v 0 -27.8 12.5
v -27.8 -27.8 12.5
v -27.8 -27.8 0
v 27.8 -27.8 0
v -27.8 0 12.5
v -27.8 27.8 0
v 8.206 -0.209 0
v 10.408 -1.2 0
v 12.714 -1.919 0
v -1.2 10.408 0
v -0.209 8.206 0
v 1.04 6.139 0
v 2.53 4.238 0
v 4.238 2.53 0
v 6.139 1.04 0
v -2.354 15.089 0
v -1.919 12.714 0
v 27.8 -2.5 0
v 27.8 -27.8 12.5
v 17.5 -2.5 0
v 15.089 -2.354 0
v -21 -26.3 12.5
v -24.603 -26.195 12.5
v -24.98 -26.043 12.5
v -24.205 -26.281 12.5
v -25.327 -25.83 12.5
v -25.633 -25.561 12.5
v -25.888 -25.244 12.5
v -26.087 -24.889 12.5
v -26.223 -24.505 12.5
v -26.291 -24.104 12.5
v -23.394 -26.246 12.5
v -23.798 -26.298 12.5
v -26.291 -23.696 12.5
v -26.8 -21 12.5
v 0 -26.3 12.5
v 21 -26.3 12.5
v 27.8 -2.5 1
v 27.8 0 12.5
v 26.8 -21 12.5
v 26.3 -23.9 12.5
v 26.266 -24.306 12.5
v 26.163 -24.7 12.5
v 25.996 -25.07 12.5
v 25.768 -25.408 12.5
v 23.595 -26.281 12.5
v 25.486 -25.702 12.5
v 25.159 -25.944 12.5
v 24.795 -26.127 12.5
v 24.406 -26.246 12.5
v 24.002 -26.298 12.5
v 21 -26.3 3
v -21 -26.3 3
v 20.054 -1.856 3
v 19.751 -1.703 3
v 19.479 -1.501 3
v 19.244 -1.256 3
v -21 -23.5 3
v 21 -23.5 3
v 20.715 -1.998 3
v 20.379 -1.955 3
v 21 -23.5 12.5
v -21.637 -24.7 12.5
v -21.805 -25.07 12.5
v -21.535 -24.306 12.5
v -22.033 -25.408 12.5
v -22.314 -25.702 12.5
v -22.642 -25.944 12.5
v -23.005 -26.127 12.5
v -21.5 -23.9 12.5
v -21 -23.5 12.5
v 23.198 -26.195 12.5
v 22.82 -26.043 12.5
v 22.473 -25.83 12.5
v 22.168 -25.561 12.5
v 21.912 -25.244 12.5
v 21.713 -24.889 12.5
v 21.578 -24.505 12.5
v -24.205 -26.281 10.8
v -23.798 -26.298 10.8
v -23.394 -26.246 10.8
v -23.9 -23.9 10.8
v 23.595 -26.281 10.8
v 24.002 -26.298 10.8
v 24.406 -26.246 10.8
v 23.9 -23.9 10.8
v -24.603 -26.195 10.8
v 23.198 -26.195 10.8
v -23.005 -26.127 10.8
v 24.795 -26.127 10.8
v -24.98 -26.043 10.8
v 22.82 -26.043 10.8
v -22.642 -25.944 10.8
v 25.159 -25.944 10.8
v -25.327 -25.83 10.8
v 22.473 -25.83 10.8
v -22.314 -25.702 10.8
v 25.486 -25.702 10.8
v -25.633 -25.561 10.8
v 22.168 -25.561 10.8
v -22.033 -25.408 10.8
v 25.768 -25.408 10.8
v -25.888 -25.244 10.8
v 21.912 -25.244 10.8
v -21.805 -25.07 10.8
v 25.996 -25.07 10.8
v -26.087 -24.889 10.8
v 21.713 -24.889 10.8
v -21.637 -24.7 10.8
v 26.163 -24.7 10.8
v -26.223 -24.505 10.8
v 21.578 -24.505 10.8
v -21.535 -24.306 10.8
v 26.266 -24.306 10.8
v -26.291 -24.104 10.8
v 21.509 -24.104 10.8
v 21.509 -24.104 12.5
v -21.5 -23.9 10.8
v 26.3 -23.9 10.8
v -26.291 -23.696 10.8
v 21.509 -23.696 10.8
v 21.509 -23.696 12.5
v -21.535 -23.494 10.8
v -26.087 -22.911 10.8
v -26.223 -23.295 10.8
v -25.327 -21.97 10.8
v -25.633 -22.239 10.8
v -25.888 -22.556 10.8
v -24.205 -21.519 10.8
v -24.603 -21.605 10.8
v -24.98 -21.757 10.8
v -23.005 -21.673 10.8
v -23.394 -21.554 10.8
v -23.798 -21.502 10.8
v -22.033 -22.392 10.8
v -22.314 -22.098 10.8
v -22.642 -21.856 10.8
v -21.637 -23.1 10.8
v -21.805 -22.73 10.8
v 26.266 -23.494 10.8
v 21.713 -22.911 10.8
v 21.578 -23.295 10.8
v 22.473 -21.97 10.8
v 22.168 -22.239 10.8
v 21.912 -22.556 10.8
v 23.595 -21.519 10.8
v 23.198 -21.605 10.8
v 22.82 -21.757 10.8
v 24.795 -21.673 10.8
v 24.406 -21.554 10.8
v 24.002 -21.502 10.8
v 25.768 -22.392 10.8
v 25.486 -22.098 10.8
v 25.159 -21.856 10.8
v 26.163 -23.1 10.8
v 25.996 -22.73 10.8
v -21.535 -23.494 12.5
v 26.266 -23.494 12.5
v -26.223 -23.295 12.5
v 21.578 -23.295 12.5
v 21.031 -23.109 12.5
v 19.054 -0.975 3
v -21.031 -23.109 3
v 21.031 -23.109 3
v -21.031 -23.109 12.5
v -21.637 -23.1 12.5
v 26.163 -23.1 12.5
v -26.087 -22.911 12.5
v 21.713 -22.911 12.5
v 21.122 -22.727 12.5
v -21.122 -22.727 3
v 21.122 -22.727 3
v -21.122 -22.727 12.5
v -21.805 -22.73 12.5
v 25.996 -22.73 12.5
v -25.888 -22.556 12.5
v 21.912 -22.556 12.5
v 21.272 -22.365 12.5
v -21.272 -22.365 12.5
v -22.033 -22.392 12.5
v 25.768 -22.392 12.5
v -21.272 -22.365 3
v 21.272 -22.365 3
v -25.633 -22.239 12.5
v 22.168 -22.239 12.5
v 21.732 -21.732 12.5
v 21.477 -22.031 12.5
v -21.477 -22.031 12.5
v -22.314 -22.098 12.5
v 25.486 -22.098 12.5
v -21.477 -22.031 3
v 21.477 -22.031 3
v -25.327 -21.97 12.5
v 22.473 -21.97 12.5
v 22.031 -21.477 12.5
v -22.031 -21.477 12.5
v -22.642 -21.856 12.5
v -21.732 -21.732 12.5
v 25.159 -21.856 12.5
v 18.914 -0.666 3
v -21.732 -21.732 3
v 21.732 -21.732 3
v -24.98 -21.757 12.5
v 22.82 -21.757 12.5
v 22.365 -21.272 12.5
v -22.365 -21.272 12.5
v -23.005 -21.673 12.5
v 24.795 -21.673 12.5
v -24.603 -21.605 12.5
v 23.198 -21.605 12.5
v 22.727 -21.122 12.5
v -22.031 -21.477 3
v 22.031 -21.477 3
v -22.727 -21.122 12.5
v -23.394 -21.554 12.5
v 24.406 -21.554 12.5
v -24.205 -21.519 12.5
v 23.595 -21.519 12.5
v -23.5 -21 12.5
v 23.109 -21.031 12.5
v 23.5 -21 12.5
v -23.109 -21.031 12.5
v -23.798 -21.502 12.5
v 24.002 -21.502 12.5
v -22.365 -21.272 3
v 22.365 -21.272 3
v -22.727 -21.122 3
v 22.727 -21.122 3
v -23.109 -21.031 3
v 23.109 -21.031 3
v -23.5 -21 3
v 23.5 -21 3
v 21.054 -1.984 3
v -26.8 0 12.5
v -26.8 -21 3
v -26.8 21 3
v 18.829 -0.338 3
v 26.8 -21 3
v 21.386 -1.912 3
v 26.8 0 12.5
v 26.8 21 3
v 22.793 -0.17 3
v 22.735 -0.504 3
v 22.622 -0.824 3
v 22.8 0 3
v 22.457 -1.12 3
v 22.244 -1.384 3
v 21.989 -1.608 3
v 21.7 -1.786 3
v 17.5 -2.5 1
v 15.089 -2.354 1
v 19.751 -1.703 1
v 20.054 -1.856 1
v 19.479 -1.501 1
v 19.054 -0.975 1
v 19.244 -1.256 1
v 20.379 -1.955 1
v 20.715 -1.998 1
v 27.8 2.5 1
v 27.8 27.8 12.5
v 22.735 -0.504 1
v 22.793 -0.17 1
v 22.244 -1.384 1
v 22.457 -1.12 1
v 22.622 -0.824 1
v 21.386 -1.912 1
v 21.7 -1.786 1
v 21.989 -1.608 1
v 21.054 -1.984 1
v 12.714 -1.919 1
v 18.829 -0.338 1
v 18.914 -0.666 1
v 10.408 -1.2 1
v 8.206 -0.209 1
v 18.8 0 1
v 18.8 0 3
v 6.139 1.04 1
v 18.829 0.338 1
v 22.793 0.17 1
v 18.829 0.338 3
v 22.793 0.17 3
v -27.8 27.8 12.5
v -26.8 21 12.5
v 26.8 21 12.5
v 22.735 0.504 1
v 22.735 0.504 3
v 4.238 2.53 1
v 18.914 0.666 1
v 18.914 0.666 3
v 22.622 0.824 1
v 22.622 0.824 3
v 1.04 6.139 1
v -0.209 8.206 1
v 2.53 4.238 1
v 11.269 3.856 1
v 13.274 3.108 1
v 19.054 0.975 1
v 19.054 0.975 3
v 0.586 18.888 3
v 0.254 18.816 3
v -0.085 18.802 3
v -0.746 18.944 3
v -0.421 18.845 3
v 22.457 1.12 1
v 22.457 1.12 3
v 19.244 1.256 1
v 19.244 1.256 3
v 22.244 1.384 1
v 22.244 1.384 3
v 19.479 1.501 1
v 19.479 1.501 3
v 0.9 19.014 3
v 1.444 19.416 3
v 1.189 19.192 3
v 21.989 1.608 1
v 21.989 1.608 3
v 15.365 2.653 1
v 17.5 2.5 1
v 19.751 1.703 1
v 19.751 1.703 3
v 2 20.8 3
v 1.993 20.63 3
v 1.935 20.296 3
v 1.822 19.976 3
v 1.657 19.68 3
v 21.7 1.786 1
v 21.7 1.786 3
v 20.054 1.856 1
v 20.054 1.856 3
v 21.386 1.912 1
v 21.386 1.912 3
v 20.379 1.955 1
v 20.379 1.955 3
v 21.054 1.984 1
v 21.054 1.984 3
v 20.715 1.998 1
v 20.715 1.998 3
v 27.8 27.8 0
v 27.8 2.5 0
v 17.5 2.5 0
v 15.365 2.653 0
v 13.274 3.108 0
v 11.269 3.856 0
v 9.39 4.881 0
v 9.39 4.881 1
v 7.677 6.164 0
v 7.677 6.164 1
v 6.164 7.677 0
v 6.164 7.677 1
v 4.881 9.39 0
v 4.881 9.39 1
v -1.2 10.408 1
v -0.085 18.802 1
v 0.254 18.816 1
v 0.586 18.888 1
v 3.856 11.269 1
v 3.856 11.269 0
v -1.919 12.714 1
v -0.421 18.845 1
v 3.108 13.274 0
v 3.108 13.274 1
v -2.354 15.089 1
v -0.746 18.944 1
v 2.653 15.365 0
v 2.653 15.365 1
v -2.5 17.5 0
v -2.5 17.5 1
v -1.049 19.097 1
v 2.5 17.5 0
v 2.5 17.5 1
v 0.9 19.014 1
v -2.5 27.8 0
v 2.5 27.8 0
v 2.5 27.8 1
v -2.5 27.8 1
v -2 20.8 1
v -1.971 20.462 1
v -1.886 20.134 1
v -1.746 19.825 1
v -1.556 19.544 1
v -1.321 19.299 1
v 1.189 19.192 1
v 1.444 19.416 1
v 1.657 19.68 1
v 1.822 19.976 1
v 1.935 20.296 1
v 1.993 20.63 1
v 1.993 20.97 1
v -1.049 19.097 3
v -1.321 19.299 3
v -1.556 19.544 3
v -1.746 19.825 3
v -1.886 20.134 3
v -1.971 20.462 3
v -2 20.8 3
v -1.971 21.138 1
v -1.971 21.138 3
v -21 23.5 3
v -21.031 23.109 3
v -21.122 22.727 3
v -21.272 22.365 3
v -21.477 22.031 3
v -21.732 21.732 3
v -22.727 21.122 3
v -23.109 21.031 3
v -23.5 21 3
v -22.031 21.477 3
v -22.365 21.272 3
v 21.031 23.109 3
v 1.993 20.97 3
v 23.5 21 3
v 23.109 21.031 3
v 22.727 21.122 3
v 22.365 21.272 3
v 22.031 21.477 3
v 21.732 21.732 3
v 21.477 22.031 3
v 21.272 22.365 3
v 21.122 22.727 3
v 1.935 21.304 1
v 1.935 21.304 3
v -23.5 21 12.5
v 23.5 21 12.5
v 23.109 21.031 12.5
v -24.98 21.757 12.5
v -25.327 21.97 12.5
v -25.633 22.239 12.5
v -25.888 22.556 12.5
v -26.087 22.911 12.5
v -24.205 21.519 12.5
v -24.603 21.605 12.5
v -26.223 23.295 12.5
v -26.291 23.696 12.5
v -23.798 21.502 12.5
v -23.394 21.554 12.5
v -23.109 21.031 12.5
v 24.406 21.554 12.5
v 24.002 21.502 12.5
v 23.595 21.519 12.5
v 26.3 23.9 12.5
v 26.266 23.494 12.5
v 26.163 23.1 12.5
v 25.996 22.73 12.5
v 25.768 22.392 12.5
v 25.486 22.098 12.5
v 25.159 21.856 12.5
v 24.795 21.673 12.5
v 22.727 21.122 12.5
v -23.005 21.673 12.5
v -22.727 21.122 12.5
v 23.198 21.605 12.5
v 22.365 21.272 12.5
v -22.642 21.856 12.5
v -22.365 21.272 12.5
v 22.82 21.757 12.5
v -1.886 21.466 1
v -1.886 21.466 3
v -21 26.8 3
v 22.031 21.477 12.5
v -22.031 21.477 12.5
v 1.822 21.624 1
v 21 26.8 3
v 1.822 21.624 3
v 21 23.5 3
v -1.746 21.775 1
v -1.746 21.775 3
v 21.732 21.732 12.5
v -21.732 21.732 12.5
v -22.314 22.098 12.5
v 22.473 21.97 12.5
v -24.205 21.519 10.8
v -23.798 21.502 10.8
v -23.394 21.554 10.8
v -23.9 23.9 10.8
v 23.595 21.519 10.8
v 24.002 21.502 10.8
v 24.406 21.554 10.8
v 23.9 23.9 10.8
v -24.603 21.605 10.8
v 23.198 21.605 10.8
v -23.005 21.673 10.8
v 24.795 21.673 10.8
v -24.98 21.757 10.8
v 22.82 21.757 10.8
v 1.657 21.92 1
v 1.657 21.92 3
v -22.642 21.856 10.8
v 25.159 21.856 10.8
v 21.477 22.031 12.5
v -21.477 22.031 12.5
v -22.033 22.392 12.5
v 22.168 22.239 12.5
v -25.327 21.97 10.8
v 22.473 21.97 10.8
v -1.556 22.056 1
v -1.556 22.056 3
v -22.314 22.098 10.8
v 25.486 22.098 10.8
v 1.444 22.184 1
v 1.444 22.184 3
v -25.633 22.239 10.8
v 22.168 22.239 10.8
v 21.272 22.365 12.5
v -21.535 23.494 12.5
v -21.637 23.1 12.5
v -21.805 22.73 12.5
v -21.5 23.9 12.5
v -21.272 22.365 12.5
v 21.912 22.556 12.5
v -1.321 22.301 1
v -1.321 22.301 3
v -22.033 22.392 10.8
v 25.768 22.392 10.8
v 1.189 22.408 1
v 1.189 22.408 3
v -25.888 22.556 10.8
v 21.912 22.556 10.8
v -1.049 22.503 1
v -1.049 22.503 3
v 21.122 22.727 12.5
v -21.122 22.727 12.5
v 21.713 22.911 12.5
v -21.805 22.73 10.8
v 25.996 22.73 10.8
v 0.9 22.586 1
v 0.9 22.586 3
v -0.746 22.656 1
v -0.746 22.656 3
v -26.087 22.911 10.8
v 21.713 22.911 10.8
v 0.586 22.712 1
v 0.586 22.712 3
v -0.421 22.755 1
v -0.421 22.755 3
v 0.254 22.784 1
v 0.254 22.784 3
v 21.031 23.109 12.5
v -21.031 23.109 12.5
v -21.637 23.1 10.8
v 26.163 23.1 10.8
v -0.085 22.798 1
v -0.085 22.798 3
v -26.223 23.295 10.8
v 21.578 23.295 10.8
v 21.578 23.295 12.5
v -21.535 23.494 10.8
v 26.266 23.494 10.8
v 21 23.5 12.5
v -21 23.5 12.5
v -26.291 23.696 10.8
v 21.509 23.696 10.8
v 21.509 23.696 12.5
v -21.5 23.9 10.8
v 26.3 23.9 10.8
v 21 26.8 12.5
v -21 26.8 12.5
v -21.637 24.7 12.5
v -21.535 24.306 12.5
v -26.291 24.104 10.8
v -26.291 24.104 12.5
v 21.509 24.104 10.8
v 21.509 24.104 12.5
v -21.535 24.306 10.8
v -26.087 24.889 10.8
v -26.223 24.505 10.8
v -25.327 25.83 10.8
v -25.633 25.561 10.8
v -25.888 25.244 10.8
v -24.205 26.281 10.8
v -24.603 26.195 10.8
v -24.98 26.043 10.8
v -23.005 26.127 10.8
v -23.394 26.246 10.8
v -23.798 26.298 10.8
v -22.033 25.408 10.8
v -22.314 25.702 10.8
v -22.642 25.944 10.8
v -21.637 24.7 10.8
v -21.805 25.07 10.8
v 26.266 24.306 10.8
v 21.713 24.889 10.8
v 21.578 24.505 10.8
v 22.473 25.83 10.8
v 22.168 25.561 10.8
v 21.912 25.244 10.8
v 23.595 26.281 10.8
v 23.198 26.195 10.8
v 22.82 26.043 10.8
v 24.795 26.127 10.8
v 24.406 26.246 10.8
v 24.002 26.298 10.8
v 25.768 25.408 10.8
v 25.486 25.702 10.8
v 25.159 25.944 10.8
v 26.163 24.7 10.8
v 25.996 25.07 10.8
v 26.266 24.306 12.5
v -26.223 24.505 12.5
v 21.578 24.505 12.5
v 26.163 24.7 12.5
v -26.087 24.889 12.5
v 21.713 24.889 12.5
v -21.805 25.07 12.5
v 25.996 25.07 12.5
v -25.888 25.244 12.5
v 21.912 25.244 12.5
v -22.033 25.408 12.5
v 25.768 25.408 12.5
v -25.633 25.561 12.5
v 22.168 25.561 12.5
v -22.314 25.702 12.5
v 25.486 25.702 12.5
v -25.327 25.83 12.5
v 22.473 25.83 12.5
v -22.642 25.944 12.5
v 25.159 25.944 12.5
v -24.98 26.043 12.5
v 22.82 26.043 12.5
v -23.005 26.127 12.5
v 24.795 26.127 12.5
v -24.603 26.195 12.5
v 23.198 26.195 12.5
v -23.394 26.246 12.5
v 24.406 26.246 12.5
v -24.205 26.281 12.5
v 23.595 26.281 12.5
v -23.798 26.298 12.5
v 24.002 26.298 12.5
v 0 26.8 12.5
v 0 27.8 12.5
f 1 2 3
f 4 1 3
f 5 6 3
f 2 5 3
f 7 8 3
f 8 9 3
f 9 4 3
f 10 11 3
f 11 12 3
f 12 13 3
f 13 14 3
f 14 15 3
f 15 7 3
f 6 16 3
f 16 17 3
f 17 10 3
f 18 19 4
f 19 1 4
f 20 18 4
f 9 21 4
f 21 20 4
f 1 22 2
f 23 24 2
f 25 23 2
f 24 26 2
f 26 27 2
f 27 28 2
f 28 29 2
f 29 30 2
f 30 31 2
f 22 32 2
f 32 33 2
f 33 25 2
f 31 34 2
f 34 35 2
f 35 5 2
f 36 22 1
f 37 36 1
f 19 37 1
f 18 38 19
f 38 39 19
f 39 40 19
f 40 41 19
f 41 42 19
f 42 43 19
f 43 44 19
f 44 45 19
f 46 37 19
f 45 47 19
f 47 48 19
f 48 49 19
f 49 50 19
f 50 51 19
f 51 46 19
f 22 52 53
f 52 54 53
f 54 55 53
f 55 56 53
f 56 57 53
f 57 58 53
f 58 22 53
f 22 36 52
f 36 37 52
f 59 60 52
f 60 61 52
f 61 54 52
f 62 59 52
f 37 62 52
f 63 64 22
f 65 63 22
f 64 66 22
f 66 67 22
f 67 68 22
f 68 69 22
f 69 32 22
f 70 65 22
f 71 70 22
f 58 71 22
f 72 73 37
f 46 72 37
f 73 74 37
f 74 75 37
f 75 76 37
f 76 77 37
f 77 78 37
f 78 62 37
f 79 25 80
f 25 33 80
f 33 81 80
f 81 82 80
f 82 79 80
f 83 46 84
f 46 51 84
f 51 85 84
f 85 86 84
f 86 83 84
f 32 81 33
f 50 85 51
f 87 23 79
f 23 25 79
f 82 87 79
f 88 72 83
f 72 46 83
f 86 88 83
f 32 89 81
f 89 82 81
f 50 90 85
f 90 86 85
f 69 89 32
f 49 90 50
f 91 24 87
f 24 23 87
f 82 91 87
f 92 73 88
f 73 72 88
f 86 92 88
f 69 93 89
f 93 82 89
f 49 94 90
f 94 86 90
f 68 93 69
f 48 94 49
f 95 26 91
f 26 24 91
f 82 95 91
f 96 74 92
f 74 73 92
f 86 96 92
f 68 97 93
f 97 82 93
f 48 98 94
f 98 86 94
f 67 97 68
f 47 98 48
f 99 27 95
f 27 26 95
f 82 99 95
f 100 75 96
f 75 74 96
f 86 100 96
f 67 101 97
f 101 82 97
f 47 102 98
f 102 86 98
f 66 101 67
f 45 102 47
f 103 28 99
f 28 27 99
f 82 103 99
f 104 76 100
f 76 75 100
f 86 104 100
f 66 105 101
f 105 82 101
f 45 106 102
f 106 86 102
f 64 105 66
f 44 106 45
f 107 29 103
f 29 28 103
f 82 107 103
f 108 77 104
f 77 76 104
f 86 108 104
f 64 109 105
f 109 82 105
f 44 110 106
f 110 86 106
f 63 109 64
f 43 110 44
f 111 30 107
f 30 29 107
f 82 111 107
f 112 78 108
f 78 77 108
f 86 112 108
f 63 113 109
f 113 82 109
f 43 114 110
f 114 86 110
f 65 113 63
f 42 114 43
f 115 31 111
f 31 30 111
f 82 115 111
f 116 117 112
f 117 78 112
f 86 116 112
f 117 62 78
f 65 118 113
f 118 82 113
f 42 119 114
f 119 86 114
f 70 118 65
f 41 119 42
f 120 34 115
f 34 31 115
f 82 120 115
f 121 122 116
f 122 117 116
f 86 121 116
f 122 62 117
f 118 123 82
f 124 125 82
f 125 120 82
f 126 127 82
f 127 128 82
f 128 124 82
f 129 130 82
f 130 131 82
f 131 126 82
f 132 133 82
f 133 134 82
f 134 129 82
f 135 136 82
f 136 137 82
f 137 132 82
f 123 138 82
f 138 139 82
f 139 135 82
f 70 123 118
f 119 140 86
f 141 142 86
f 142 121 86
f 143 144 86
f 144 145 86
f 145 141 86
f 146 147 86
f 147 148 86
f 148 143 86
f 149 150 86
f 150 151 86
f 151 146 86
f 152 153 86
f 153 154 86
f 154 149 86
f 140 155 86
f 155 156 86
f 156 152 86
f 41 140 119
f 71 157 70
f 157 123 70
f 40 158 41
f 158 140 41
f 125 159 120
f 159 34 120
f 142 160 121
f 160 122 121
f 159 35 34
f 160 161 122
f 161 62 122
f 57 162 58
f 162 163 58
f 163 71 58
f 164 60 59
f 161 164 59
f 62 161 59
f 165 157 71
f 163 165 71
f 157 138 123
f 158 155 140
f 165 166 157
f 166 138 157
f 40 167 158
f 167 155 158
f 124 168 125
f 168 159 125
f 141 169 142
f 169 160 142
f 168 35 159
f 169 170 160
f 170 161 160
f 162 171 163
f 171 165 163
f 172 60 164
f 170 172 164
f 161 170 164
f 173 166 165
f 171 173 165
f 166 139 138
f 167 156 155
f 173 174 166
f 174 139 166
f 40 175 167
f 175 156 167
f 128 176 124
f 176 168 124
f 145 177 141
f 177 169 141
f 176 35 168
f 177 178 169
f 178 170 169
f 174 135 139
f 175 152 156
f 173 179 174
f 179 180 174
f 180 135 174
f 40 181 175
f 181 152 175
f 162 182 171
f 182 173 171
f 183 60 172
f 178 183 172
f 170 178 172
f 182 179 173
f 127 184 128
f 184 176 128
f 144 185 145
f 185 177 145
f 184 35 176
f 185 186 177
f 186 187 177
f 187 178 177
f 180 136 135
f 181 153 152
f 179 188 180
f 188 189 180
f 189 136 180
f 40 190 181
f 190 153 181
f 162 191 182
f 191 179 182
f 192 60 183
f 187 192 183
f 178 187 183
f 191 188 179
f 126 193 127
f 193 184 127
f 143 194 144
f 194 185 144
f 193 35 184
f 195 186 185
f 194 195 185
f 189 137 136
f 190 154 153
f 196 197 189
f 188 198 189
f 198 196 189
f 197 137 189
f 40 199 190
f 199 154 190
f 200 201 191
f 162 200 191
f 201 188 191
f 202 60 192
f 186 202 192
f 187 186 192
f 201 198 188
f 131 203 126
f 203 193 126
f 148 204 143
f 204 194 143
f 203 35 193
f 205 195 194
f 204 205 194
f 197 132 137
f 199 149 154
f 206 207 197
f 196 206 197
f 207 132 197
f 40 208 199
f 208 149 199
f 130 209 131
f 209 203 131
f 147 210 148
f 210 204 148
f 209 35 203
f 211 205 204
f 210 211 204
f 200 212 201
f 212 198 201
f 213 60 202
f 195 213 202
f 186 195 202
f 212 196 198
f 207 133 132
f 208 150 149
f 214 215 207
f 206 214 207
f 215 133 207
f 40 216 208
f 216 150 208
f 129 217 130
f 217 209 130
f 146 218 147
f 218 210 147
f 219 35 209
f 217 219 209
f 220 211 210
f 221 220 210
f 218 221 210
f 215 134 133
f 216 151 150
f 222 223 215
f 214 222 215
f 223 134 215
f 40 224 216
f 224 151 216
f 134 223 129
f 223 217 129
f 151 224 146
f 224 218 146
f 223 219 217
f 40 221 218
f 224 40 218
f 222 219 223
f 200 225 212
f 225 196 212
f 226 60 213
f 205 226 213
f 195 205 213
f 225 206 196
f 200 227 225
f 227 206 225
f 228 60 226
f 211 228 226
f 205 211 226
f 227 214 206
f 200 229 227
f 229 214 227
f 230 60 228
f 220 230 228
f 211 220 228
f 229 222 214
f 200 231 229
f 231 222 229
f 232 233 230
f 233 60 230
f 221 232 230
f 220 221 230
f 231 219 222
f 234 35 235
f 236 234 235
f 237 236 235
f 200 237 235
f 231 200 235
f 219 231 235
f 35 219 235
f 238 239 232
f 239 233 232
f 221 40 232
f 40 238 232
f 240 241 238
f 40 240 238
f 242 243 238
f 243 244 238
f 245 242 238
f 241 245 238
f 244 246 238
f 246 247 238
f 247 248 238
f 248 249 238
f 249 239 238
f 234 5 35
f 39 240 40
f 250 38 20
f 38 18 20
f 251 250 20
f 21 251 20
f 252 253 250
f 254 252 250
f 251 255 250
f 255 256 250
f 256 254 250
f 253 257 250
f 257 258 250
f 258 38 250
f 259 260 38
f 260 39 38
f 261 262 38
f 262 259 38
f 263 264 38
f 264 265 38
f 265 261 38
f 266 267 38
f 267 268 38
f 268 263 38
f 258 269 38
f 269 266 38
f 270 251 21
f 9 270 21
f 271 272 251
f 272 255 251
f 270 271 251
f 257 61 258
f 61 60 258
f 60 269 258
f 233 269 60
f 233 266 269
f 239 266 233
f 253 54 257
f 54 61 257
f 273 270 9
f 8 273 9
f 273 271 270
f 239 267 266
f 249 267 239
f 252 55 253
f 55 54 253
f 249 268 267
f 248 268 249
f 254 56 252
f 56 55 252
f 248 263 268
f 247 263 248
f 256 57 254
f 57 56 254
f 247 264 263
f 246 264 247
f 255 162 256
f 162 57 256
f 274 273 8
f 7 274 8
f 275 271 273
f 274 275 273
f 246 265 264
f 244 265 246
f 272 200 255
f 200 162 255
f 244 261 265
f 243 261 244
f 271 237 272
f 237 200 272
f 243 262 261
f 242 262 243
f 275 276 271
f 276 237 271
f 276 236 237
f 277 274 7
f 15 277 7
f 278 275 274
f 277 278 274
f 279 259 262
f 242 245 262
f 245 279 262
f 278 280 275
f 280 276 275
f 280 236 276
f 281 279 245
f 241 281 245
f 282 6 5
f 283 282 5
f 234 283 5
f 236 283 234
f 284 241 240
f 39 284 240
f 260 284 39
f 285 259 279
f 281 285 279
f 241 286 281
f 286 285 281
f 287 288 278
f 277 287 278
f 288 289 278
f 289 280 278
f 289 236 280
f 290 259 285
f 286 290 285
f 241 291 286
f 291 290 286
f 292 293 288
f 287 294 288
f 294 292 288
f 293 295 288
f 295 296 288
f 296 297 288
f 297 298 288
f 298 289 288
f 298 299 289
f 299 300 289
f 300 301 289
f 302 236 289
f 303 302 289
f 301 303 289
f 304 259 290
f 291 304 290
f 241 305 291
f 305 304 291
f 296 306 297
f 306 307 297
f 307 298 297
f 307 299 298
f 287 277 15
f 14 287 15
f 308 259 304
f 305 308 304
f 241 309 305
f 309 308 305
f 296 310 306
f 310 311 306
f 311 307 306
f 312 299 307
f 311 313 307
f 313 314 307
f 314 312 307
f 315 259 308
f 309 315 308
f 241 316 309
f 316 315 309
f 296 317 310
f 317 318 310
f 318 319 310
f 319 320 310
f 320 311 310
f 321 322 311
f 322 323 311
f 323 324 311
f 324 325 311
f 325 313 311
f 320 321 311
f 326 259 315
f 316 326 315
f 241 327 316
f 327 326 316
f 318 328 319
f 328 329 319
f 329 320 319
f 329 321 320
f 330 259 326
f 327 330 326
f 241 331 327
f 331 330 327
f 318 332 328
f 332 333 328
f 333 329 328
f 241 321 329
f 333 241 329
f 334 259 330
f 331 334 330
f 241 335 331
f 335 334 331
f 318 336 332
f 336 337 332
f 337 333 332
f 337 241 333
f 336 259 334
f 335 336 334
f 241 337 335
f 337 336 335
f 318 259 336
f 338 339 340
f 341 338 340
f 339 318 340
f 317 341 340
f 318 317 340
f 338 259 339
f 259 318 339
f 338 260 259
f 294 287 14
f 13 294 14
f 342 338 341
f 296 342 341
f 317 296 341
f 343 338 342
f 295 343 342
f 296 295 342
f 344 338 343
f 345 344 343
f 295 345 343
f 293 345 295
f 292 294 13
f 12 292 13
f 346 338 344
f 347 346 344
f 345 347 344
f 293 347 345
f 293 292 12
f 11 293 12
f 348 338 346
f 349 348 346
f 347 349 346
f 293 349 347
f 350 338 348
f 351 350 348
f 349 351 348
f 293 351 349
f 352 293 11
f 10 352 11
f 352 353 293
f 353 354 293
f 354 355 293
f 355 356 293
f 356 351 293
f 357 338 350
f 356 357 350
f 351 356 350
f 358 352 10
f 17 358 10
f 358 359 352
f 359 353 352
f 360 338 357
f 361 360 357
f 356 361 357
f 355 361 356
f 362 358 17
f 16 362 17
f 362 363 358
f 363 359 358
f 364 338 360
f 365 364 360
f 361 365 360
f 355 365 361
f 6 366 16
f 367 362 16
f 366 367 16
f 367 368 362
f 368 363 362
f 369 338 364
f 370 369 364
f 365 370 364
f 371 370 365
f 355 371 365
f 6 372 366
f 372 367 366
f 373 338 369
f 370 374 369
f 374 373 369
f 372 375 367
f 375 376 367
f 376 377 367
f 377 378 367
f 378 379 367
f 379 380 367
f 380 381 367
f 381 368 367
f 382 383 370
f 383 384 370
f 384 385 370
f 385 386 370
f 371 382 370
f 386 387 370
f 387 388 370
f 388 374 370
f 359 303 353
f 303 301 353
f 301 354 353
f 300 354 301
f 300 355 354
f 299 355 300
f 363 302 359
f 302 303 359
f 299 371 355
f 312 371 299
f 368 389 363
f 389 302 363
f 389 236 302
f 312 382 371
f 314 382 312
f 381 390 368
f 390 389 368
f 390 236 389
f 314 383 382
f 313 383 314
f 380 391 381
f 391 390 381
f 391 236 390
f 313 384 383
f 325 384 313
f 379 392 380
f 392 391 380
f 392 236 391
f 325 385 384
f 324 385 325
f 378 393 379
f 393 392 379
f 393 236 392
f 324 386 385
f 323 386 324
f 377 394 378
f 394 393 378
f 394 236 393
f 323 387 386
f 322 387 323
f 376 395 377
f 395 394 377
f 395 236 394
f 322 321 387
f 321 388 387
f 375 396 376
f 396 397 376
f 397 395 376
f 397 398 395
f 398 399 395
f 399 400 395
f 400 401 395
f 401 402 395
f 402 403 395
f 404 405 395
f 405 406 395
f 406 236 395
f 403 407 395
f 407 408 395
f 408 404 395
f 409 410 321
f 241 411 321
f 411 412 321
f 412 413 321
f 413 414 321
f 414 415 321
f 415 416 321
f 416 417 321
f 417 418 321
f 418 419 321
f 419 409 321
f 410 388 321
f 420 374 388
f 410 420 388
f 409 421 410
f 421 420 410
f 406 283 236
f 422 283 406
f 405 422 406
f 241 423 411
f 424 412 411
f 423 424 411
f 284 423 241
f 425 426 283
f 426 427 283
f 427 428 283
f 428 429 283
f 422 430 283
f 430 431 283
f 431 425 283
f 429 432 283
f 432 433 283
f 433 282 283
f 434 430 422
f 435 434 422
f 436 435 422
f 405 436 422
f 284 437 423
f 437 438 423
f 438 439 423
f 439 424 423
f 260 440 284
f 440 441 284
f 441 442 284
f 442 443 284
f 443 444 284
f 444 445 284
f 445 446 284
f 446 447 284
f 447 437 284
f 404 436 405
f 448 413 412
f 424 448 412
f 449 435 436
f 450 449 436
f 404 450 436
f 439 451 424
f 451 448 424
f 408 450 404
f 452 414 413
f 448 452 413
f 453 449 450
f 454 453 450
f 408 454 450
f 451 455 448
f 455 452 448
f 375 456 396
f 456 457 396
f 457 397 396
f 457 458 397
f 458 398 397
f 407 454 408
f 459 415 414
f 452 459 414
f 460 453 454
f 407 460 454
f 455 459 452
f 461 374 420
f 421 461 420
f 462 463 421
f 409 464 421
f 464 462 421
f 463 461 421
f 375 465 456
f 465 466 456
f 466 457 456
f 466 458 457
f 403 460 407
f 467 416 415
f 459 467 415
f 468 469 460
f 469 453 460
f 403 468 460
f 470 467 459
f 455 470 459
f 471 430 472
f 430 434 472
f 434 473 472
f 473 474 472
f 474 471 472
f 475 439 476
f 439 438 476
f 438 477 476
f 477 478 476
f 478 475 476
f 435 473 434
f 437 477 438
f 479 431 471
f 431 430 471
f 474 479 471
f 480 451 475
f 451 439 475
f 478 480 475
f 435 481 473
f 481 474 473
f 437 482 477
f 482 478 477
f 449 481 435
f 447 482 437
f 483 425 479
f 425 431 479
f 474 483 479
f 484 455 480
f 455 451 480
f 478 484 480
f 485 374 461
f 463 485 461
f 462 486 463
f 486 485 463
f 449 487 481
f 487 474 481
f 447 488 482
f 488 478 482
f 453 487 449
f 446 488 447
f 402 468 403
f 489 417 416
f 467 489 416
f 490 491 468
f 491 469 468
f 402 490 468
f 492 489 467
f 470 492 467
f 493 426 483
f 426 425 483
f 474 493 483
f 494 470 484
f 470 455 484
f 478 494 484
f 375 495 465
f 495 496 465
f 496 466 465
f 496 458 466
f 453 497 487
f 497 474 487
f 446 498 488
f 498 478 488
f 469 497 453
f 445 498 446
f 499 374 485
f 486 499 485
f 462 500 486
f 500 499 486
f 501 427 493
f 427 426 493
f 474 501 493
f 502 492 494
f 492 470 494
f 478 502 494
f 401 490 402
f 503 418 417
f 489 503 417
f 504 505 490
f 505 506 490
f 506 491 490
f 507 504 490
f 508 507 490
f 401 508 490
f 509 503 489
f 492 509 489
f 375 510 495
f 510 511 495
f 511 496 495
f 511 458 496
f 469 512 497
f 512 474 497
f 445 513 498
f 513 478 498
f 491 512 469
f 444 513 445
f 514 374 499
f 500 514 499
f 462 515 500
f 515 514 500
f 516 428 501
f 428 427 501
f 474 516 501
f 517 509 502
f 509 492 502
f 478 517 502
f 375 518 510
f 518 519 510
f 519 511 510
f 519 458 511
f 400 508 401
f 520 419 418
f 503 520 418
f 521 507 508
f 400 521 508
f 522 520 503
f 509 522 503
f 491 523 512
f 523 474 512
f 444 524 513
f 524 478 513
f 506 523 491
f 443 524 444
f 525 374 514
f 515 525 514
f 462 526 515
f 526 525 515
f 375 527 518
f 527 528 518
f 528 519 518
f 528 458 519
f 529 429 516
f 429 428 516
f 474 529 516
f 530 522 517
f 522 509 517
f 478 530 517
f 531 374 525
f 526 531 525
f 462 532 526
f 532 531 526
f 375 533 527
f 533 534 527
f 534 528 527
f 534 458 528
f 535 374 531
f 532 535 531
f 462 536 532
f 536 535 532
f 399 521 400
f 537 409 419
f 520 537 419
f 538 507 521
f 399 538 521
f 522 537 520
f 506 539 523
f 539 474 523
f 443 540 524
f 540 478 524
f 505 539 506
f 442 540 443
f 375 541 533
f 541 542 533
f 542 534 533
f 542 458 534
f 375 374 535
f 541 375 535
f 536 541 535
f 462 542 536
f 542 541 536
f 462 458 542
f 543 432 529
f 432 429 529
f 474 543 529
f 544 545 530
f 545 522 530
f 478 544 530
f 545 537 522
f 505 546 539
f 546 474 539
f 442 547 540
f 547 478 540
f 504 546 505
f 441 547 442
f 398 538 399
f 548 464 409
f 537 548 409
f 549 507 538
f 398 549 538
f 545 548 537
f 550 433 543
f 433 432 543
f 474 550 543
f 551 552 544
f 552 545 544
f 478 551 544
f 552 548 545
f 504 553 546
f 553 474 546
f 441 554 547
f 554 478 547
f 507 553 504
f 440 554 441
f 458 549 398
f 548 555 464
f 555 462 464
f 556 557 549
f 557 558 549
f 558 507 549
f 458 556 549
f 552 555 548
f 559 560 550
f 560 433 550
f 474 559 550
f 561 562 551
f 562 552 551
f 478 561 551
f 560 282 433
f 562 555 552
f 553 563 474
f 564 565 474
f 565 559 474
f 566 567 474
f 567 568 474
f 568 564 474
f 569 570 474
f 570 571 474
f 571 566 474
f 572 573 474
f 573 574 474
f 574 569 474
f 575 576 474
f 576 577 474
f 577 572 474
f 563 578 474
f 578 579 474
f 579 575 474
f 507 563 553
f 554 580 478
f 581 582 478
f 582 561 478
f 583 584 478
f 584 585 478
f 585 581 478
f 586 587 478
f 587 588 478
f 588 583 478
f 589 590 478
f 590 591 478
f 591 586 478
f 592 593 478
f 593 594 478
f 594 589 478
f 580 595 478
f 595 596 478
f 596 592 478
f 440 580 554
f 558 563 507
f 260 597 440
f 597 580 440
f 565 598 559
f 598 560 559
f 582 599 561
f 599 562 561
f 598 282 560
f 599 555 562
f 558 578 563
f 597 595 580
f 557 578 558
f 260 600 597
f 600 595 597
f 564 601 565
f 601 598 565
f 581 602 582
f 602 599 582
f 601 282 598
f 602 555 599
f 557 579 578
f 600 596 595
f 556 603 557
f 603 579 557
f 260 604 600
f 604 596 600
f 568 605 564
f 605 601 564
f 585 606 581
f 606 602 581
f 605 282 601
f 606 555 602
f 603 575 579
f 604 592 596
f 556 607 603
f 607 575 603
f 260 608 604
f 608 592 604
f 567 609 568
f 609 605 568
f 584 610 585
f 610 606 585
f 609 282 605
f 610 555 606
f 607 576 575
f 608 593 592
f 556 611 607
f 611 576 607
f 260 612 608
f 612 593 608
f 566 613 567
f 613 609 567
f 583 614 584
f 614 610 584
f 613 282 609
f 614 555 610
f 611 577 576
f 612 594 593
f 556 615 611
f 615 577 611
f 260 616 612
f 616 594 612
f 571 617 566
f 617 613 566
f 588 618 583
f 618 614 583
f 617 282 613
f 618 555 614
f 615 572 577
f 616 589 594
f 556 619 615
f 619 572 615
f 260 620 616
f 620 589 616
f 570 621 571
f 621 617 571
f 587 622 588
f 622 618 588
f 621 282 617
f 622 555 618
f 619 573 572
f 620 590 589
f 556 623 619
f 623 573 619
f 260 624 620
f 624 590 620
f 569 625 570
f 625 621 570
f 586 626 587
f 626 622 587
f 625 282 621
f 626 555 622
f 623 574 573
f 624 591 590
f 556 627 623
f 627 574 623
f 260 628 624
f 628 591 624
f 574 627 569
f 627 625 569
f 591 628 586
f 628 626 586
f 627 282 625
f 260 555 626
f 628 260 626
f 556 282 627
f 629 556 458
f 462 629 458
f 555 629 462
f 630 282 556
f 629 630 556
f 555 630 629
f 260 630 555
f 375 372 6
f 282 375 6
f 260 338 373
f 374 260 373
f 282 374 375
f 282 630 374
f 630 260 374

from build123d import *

# Parameters (mm, degrees)
SKICA1_W                 = 55.6
SKICA1_H                 = 55.6
P_IDAT_VYSUNUT_M2_DEPTH  = 3
SKICA5_W                 = 5
SKICA5_H                 = 25.3
ODEBRAT_VYSUNUT_M3_DEPTH = 1
SKICA14_W                = 53.6
SKICA14_H                = 1.5
P_IDAT_VYSUNUT_M9_DEPTH  = 9.5
SKICA17_R                = 2
ODEBRAT_VYSUNUT_M8_DEPTH = 4
SKICA19_W                = 6.8
SKICA19_H                = 6.8
P_IDAT_VYSUNUT_M10_DEPTH = 12.5
SKICA20_R                = 2.4
ODEBRAT_VYSUNUT_M9_DEPTH = 1.7
ZAOBLIT1_R               = 2.5
ZAOBLIT2_R               = 15
ZAOBLIT3_R               = 20


with BuildPart() as part:
    # Skica1 → Přidat vysunutím2 (new body)
    with BuildSketch(Plane.XY):
        Rectangle(SKICA1_W, SKICA1_H)
    extrude(amount=P_IDAT_VYSUNUT_M2_DEPTH)

    # Skica5 → Odebrat vysunutím3 (cut)
    with BuildSketch(Plane(origin=(0, 0, 0), x_dir=(-1, 0, 0), z_dir=(0, 0, -1))):
        Polygon((-2.5, 2.5), (-27.8, 2.5), (-27.8, -2.5), (2.5, -2.5), (2.5, 2.5), align=None)
        with Locations((0, 15.15)):
            Rectangle(SKICA5_W, SKICA5_H)
    extrude(amount=-ODEBRAT_VYSUNUT_M3_DEPTH, mode=Mode.SUBTRACT)

    # Skica14 → Přidat vysunutím9 (add)
    with BuildSketch(Plane.XY.offset(3)):
        Polygon((27.8, 27.8), (-27.8, 27.8), (-27.8, -27.8), (-26.8, -27.8), (-26.8, -26.8), (-26.8, -26.3), (-26.8, 26.8), (26.8, 26.8), (26.8, -26.3), (26.8, -27.8), (27.8, -27.8), align=None)
        with Locations((0, -27.05)):
            Rectangle(SKICA14_W, SKICA14_H)
    extrude(amount=P_IDAT_VYSUNUT_M9_DEPTH)

    # Skica17 → Odebrat vysunutím8 (cut)
    with BuildSketch(Plane(origin=(0, 0, 1), x_dir=(-1, 0, 0), z_dir=(0, 0, -1))):
        with Locations((-20.8, 0)):
            Circle(SKICA17_R)
        with Locations((0, 20.8)):
            Circle(SKICA17_R)
    extrude(amount=-ODEBRAT_VYSUNUT_M8_DEPTH, mode=Mode.SUBTRACT)

    # Skica19 → Přidat vysunutím10 (add)
    with BuildSketch(Plane(origin=(0, 0, 0), x_dir=(-1, 0, 0), z_dir=(0, 0, -1))):
        with Locations((-24.4, 24.4)):
            Rectangle(SKICA19_W, SKICA19_H)
        with Locations((24.4, 24.4)):
            Rectangle(SKICA19_W, SKICA19_H)
        with Locations((-24.4, -24.4)):
            Rectangle(SKICA19_W, SKICA19_H)
        with Locations((24.4, -24.4)):
            Rectangle(SKICA19_W, SKICA19_H)
    extrude(amount=-P_IDAT_VYSUNUT_M10_DEPTH)

    # Skica20 → Odebrat vysunutím9 (cut)
    with BuildSketch(Plane.XY.offset(12.5)):
        with Locations((-23.9, -23.9)):
            Circle(SKICA20_R)
        with Locations((-23.9, 23.9)):
            Circle(SKICA20_R)
        with Locations((23.900280565, 23.9)):
            Circle(SKICA20_R)
        with Locations((23.900280565, -23.9)):
            Circle(SKICA20_R)
    extrude(amount=-ODEBRAT_VYSUNUT_M9_DEPTH, mode=Mode.SUBTRACT)

    # Zaoblit1
    zaoblit1_edges = [part.edges().sort_by_distance(p)[0] for p in [
        (-21, 21, 7.75),
        (21, -21, 7.75),
        (-21, -21, 7.75),
        (21, 21, 7.75),
    ]]
    fillet(zaoblit1_edges, radius=ZAOBLIT1_R)

    # Zaoblit2
    zaoblit2_edges = [part.edges().sort_by_distance(p)[0] for p in [
        (2.5, 2.5, 0.5),
    ]]
    fillet(zaoblit2_edges, radius=ZAOBLIT2_R)

    # Zaoblit3
    zaoblit3_edges = [part.edges().sort_by_distance(p)[0] for p in [
        (-2.5, -2.5, 0.5),
    ]]
    fillet(zaoblit3_edges, radius=ZAOBLIT3_R)


solid = part.part
